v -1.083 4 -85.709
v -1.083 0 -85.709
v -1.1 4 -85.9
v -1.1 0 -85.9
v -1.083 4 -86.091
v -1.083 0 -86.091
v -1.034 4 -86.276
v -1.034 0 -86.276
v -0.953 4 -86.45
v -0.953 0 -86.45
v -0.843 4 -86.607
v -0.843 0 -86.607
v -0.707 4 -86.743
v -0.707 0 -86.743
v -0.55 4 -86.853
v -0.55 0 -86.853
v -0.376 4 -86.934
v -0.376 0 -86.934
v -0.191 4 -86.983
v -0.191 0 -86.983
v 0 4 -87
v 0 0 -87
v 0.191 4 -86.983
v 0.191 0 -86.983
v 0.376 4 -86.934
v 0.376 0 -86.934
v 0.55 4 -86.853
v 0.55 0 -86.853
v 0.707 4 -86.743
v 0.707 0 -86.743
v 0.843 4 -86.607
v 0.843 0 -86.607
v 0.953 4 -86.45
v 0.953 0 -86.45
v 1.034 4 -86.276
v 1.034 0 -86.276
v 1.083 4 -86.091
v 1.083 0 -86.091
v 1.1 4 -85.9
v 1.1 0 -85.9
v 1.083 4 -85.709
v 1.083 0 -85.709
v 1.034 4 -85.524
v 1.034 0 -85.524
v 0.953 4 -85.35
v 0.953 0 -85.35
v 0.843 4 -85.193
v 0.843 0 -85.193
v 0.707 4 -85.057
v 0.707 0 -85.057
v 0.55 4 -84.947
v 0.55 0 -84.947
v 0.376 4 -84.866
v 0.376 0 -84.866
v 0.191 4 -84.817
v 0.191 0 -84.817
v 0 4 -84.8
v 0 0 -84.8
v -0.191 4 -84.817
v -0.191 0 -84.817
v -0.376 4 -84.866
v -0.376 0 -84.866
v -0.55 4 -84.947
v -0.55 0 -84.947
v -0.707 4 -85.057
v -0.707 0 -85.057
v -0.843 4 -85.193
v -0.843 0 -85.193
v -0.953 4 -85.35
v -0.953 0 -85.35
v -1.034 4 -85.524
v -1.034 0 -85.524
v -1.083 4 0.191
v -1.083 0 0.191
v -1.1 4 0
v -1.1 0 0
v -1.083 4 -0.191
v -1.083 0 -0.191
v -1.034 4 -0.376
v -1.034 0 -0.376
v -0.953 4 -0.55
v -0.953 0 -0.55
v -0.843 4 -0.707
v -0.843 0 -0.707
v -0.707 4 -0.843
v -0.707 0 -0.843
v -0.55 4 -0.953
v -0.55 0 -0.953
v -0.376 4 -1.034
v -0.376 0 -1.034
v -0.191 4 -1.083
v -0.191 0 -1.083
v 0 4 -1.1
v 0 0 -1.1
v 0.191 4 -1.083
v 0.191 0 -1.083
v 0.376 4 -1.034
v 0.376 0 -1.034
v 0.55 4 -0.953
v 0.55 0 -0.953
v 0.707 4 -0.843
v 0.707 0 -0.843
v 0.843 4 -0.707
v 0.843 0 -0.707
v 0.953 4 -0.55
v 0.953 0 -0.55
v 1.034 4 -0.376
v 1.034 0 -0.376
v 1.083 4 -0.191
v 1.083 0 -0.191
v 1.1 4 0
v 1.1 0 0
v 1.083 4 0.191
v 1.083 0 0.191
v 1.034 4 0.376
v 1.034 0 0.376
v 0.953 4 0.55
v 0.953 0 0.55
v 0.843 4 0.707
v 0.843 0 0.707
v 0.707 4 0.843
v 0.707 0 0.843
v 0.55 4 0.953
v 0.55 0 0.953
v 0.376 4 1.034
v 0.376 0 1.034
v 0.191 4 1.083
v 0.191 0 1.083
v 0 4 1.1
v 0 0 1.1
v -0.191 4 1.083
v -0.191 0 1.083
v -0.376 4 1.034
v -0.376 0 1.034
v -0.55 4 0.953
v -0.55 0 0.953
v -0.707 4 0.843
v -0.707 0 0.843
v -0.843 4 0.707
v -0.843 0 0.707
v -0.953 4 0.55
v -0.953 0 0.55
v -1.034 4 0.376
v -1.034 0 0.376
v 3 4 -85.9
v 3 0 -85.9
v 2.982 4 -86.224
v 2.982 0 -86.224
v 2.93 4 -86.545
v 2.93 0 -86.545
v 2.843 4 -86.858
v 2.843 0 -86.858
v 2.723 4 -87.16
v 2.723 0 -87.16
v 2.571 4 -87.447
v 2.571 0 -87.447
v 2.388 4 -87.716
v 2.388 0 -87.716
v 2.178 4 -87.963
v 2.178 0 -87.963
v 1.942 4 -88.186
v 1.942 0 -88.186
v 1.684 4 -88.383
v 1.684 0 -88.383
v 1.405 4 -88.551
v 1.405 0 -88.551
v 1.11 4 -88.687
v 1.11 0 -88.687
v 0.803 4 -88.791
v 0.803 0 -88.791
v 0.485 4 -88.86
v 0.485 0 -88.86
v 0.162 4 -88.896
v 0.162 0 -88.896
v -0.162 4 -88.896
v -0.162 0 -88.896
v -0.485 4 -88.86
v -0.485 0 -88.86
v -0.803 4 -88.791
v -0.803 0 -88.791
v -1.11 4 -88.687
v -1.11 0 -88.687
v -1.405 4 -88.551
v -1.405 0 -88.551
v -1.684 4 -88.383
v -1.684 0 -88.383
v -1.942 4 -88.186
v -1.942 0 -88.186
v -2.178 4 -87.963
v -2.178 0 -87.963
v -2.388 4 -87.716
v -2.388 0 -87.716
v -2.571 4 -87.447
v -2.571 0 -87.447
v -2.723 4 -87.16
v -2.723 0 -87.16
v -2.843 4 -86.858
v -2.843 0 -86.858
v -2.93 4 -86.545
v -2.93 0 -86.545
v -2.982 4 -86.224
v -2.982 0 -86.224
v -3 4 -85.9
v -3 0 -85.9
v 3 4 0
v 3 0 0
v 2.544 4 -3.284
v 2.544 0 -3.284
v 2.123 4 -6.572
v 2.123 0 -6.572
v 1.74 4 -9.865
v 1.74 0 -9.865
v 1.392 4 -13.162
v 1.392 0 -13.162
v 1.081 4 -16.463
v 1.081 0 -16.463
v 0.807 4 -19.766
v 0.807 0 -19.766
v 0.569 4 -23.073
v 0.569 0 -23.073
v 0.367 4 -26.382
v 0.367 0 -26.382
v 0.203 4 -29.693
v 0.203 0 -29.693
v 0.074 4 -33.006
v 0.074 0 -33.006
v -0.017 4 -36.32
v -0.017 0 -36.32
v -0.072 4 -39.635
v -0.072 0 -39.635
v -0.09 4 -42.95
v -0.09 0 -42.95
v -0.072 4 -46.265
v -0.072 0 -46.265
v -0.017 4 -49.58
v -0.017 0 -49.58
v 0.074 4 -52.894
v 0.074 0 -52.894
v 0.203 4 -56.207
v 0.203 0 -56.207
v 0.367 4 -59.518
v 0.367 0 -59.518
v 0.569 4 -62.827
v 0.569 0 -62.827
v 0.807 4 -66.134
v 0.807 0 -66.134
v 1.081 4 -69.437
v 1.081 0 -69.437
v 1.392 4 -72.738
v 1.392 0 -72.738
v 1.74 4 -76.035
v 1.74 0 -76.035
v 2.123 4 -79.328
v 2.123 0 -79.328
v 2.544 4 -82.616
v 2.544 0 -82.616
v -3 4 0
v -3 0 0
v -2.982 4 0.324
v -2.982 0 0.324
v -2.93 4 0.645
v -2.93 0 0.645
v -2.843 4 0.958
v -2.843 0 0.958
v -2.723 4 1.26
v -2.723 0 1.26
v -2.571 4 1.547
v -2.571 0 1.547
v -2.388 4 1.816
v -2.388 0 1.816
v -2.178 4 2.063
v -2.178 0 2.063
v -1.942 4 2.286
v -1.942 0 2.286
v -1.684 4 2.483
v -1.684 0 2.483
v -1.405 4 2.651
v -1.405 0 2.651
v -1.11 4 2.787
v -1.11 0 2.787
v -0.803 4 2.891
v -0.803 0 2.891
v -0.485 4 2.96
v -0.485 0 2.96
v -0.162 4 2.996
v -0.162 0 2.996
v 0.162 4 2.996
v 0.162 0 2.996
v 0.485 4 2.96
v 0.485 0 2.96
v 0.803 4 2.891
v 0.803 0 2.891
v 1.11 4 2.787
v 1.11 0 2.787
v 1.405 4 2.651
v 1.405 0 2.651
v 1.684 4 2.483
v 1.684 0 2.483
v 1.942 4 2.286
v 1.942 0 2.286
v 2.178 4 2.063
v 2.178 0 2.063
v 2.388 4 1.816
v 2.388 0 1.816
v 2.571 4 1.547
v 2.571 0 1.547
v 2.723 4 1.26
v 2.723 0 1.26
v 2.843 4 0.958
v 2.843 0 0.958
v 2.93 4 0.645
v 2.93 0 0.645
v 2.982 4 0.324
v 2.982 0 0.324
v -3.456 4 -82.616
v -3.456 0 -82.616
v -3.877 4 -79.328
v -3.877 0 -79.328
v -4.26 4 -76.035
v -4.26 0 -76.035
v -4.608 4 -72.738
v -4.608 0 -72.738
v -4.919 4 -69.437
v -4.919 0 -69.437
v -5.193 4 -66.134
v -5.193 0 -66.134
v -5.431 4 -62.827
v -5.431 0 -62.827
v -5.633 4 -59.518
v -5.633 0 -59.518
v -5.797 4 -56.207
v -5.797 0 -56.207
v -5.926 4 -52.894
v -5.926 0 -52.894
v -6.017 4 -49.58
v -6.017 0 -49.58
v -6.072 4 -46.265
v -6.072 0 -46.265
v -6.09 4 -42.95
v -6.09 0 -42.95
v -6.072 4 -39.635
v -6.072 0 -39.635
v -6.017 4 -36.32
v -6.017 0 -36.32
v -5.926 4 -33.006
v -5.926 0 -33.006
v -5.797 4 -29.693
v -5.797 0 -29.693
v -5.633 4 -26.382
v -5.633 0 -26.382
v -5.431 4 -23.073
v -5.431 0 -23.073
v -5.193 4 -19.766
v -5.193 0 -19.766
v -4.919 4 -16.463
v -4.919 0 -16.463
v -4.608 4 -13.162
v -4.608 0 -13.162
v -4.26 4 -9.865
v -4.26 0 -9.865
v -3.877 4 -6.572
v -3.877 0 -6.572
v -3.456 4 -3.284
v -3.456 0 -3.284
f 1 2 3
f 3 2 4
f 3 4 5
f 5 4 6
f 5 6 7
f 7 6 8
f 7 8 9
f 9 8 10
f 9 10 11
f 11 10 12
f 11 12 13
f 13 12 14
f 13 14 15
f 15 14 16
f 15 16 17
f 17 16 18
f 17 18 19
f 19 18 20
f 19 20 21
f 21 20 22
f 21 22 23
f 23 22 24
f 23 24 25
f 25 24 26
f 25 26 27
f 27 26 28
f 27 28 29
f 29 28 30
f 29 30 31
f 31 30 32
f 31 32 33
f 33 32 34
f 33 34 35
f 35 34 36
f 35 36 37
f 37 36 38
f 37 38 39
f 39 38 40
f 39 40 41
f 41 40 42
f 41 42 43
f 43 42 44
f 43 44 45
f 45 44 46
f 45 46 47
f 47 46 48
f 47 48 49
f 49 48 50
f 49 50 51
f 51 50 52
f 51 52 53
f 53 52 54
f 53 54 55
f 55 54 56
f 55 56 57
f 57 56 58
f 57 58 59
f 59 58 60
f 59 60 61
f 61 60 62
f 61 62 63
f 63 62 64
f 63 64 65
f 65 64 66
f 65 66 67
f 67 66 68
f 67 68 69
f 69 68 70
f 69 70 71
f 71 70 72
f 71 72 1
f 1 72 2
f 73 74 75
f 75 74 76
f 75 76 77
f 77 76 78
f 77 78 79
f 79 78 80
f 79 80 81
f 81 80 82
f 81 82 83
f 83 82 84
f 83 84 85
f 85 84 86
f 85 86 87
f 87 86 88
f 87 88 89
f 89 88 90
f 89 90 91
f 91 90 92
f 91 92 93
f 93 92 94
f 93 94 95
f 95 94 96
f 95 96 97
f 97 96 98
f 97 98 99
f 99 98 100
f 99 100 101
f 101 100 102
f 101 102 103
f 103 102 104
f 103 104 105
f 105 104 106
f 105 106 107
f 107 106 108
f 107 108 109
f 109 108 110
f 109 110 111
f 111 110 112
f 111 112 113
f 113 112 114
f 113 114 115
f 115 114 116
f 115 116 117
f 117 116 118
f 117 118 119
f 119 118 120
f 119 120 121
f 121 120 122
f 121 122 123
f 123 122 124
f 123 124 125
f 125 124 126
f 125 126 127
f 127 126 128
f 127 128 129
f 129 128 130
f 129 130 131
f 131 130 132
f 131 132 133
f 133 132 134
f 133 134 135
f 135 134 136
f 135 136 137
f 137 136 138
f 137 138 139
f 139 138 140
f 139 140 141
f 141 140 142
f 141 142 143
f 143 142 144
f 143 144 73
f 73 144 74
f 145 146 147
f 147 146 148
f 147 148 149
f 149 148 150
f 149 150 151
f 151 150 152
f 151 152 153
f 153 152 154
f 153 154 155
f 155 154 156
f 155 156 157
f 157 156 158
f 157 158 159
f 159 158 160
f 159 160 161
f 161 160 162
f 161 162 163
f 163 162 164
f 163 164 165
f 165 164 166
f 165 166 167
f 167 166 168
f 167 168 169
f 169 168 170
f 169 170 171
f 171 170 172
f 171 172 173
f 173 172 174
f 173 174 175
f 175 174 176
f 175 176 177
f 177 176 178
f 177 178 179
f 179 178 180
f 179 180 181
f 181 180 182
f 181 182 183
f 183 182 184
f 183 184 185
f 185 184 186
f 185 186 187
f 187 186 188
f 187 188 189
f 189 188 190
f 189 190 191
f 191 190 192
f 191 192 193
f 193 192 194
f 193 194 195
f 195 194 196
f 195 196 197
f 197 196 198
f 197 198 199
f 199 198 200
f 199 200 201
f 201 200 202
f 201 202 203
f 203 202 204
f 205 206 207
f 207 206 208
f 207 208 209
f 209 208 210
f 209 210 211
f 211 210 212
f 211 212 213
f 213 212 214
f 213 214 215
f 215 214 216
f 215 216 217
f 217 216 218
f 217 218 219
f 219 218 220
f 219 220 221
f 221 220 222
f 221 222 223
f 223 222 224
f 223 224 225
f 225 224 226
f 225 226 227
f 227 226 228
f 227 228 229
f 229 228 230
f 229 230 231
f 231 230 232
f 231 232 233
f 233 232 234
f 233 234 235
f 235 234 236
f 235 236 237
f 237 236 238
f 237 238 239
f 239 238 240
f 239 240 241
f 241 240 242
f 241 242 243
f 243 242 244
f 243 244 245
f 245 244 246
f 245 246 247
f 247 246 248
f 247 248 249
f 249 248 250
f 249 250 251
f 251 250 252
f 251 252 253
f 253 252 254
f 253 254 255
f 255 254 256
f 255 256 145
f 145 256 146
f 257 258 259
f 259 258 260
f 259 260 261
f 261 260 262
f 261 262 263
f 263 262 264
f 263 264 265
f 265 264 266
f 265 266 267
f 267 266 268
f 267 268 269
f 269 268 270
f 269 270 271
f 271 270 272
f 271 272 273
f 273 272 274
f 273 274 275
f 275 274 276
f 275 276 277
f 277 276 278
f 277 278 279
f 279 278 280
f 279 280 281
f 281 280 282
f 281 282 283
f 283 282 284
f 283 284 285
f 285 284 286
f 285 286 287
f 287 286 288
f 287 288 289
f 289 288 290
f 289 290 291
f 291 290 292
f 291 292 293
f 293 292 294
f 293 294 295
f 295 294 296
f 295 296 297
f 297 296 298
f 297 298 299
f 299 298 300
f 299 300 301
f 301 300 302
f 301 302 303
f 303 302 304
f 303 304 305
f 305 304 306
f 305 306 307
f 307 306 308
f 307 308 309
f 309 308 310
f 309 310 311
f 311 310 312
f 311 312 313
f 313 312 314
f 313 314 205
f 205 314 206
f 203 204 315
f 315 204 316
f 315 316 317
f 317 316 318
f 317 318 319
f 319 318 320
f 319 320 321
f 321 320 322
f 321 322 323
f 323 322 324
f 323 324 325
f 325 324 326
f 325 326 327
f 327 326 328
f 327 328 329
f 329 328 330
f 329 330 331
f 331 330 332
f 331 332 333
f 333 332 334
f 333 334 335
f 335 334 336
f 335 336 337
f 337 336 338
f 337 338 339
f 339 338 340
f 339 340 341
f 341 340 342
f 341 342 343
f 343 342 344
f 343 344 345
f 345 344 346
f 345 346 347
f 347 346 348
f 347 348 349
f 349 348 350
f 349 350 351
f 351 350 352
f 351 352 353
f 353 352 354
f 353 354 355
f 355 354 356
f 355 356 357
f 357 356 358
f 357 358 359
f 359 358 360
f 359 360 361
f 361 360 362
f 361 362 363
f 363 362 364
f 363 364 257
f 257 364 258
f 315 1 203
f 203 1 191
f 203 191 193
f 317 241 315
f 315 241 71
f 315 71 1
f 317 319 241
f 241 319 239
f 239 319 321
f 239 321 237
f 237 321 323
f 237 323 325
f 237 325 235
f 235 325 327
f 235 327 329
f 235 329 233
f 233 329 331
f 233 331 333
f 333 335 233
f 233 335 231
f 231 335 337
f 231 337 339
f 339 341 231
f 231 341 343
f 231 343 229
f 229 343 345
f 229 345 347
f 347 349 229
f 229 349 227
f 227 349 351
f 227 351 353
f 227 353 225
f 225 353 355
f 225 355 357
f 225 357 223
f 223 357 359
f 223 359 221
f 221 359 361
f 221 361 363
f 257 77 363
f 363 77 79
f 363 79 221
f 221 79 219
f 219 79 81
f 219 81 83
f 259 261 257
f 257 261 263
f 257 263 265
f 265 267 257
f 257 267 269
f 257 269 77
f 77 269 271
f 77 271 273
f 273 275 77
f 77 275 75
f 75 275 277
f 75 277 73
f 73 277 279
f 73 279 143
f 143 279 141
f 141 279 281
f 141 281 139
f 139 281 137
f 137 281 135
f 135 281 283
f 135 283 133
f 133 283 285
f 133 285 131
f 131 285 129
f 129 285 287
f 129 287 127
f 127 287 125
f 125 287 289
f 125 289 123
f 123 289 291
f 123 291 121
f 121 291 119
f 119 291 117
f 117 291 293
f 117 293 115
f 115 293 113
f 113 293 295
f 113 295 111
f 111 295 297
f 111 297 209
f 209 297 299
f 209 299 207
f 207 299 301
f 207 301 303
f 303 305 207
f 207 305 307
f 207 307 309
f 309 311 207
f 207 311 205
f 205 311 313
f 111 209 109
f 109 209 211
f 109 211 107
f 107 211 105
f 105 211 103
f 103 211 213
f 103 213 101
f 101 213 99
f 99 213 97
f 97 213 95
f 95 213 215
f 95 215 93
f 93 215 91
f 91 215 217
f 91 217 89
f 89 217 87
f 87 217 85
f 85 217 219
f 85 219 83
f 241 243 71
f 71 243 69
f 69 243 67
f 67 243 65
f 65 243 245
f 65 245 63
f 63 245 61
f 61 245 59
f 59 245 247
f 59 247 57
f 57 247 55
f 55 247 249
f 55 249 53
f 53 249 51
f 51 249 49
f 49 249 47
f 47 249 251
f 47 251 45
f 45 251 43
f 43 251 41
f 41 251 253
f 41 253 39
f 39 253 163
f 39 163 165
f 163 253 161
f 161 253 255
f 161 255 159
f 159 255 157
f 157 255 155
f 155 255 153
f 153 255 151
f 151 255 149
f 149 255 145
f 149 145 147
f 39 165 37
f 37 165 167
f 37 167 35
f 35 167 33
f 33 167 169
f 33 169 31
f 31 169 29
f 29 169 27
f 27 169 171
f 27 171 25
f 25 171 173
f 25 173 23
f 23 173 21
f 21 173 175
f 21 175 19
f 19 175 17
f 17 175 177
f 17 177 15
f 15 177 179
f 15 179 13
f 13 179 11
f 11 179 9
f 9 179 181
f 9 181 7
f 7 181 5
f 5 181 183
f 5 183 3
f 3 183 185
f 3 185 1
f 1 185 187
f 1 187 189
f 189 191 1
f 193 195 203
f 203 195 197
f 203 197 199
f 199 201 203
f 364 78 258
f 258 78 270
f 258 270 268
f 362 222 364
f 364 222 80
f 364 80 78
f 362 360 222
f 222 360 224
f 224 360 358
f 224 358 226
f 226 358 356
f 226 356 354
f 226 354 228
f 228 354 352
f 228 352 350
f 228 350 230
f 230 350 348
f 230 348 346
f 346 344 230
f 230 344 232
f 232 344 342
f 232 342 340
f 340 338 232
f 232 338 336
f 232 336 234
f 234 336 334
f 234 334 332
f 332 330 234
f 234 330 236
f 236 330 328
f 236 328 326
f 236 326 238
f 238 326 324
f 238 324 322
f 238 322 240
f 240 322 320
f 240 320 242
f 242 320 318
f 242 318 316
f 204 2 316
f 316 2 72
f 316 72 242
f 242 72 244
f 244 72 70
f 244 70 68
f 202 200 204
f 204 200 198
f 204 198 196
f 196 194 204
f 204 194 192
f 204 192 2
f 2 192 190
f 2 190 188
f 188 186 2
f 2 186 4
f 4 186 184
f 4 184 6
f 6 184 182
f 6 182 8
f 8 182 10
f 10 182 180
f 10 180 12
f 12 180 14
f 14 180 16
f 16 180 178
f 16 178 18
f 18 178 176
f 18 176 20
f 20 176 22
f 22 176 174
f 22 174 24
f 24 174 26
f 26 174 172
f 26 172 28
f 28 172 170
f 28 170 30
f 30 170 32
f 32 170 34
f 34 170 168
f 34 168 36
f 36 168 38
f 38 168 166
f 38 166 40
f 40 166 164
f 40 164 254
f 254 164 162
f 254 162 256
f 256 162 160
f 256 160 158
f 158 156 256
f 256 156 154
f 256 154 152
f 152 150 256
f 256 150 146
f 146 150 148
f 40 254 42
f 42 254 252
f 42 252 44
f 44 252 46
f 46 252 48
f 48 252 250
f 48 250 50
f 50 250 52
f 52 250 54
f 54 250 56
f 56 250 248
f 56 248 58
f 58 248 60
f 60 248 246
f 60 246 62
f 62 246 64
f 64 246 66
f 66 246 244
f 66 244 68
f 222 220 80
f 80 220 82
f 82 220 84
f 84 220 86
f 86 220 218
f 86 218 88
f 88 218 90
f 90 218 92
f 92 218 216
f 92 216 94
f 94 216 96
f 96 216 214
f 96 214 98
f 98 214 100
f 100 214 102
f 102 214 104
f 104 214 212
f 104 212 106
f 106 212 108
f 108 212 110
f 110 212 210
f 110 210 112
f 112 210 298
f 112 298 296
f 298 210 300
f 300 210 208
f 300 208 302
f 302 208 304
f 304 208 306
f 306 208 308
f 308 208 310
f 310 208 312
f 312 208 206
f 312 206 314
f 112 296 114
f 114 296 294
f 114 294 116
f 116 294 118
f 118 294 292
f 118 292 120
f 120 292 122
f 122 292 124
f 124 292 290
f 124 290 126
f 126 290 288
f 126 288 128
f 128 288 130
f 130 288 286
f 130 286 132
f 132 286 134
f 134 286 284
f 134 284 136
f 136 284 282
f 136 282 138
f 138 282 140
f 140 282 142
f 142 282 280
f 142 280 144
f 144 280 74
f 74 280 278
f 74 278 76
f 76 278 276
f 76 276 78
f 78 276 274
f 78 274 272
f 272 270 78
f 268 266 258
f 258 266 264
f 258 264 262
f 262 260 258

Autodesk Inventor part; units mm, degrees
ref_plane "YZ Plane" through (0, 0, 0) normal (1, 0, 0) x (0, 1, 0)
ref_plane "XZ Plane" through (0, 0, 0) normal (0, 1, 0) x (-1, 0, 0)
ref_plane "XY Plane" through (0, 0, 0) normal (0, 0, 1) x (1, 0, 0)
sketch "Sketch1" plane through (0, 0, 0) normal (0, 1, 0) x (-1, 0, 0)
  line L0 (0, 0) -> (0, -85.9) construction
  line L1 (3, 0) -> (3, -85.9)
  line L2 (-3, -85.9) -> (-3, 0)
  arc A0 (3, 0) -> (-3, 0) centre (0, 0) ccw
  arc A1 (-3, -85.9) -> (3, -85.9) centre (0, -85.9) ccw
  circle A2 centre (0, 0) radius 1.1
  circle A3 centre (0, -85.9) radius 1.1
  arc A4 (-3, -85.9) -> (-3, 0) centre (-299.9096, -42.95) ccw
  arc A5 (3, -85.9) -> (3, 0) centre (-293.9096, -42.95) ccw
  point P0 (0, -42.95)
  dimension "d0" = 2.2
  dimension "d1" = 2.2
  dimension "d2" = 6
  dimension "d3" = 85.9
  dimension "d10" = 300
  dimension "d11" = 300
extrude "Extrusion1" add sketch "Sketch1" along normal blind 4 contours A5 L1 | L1 A1 A4 A0
